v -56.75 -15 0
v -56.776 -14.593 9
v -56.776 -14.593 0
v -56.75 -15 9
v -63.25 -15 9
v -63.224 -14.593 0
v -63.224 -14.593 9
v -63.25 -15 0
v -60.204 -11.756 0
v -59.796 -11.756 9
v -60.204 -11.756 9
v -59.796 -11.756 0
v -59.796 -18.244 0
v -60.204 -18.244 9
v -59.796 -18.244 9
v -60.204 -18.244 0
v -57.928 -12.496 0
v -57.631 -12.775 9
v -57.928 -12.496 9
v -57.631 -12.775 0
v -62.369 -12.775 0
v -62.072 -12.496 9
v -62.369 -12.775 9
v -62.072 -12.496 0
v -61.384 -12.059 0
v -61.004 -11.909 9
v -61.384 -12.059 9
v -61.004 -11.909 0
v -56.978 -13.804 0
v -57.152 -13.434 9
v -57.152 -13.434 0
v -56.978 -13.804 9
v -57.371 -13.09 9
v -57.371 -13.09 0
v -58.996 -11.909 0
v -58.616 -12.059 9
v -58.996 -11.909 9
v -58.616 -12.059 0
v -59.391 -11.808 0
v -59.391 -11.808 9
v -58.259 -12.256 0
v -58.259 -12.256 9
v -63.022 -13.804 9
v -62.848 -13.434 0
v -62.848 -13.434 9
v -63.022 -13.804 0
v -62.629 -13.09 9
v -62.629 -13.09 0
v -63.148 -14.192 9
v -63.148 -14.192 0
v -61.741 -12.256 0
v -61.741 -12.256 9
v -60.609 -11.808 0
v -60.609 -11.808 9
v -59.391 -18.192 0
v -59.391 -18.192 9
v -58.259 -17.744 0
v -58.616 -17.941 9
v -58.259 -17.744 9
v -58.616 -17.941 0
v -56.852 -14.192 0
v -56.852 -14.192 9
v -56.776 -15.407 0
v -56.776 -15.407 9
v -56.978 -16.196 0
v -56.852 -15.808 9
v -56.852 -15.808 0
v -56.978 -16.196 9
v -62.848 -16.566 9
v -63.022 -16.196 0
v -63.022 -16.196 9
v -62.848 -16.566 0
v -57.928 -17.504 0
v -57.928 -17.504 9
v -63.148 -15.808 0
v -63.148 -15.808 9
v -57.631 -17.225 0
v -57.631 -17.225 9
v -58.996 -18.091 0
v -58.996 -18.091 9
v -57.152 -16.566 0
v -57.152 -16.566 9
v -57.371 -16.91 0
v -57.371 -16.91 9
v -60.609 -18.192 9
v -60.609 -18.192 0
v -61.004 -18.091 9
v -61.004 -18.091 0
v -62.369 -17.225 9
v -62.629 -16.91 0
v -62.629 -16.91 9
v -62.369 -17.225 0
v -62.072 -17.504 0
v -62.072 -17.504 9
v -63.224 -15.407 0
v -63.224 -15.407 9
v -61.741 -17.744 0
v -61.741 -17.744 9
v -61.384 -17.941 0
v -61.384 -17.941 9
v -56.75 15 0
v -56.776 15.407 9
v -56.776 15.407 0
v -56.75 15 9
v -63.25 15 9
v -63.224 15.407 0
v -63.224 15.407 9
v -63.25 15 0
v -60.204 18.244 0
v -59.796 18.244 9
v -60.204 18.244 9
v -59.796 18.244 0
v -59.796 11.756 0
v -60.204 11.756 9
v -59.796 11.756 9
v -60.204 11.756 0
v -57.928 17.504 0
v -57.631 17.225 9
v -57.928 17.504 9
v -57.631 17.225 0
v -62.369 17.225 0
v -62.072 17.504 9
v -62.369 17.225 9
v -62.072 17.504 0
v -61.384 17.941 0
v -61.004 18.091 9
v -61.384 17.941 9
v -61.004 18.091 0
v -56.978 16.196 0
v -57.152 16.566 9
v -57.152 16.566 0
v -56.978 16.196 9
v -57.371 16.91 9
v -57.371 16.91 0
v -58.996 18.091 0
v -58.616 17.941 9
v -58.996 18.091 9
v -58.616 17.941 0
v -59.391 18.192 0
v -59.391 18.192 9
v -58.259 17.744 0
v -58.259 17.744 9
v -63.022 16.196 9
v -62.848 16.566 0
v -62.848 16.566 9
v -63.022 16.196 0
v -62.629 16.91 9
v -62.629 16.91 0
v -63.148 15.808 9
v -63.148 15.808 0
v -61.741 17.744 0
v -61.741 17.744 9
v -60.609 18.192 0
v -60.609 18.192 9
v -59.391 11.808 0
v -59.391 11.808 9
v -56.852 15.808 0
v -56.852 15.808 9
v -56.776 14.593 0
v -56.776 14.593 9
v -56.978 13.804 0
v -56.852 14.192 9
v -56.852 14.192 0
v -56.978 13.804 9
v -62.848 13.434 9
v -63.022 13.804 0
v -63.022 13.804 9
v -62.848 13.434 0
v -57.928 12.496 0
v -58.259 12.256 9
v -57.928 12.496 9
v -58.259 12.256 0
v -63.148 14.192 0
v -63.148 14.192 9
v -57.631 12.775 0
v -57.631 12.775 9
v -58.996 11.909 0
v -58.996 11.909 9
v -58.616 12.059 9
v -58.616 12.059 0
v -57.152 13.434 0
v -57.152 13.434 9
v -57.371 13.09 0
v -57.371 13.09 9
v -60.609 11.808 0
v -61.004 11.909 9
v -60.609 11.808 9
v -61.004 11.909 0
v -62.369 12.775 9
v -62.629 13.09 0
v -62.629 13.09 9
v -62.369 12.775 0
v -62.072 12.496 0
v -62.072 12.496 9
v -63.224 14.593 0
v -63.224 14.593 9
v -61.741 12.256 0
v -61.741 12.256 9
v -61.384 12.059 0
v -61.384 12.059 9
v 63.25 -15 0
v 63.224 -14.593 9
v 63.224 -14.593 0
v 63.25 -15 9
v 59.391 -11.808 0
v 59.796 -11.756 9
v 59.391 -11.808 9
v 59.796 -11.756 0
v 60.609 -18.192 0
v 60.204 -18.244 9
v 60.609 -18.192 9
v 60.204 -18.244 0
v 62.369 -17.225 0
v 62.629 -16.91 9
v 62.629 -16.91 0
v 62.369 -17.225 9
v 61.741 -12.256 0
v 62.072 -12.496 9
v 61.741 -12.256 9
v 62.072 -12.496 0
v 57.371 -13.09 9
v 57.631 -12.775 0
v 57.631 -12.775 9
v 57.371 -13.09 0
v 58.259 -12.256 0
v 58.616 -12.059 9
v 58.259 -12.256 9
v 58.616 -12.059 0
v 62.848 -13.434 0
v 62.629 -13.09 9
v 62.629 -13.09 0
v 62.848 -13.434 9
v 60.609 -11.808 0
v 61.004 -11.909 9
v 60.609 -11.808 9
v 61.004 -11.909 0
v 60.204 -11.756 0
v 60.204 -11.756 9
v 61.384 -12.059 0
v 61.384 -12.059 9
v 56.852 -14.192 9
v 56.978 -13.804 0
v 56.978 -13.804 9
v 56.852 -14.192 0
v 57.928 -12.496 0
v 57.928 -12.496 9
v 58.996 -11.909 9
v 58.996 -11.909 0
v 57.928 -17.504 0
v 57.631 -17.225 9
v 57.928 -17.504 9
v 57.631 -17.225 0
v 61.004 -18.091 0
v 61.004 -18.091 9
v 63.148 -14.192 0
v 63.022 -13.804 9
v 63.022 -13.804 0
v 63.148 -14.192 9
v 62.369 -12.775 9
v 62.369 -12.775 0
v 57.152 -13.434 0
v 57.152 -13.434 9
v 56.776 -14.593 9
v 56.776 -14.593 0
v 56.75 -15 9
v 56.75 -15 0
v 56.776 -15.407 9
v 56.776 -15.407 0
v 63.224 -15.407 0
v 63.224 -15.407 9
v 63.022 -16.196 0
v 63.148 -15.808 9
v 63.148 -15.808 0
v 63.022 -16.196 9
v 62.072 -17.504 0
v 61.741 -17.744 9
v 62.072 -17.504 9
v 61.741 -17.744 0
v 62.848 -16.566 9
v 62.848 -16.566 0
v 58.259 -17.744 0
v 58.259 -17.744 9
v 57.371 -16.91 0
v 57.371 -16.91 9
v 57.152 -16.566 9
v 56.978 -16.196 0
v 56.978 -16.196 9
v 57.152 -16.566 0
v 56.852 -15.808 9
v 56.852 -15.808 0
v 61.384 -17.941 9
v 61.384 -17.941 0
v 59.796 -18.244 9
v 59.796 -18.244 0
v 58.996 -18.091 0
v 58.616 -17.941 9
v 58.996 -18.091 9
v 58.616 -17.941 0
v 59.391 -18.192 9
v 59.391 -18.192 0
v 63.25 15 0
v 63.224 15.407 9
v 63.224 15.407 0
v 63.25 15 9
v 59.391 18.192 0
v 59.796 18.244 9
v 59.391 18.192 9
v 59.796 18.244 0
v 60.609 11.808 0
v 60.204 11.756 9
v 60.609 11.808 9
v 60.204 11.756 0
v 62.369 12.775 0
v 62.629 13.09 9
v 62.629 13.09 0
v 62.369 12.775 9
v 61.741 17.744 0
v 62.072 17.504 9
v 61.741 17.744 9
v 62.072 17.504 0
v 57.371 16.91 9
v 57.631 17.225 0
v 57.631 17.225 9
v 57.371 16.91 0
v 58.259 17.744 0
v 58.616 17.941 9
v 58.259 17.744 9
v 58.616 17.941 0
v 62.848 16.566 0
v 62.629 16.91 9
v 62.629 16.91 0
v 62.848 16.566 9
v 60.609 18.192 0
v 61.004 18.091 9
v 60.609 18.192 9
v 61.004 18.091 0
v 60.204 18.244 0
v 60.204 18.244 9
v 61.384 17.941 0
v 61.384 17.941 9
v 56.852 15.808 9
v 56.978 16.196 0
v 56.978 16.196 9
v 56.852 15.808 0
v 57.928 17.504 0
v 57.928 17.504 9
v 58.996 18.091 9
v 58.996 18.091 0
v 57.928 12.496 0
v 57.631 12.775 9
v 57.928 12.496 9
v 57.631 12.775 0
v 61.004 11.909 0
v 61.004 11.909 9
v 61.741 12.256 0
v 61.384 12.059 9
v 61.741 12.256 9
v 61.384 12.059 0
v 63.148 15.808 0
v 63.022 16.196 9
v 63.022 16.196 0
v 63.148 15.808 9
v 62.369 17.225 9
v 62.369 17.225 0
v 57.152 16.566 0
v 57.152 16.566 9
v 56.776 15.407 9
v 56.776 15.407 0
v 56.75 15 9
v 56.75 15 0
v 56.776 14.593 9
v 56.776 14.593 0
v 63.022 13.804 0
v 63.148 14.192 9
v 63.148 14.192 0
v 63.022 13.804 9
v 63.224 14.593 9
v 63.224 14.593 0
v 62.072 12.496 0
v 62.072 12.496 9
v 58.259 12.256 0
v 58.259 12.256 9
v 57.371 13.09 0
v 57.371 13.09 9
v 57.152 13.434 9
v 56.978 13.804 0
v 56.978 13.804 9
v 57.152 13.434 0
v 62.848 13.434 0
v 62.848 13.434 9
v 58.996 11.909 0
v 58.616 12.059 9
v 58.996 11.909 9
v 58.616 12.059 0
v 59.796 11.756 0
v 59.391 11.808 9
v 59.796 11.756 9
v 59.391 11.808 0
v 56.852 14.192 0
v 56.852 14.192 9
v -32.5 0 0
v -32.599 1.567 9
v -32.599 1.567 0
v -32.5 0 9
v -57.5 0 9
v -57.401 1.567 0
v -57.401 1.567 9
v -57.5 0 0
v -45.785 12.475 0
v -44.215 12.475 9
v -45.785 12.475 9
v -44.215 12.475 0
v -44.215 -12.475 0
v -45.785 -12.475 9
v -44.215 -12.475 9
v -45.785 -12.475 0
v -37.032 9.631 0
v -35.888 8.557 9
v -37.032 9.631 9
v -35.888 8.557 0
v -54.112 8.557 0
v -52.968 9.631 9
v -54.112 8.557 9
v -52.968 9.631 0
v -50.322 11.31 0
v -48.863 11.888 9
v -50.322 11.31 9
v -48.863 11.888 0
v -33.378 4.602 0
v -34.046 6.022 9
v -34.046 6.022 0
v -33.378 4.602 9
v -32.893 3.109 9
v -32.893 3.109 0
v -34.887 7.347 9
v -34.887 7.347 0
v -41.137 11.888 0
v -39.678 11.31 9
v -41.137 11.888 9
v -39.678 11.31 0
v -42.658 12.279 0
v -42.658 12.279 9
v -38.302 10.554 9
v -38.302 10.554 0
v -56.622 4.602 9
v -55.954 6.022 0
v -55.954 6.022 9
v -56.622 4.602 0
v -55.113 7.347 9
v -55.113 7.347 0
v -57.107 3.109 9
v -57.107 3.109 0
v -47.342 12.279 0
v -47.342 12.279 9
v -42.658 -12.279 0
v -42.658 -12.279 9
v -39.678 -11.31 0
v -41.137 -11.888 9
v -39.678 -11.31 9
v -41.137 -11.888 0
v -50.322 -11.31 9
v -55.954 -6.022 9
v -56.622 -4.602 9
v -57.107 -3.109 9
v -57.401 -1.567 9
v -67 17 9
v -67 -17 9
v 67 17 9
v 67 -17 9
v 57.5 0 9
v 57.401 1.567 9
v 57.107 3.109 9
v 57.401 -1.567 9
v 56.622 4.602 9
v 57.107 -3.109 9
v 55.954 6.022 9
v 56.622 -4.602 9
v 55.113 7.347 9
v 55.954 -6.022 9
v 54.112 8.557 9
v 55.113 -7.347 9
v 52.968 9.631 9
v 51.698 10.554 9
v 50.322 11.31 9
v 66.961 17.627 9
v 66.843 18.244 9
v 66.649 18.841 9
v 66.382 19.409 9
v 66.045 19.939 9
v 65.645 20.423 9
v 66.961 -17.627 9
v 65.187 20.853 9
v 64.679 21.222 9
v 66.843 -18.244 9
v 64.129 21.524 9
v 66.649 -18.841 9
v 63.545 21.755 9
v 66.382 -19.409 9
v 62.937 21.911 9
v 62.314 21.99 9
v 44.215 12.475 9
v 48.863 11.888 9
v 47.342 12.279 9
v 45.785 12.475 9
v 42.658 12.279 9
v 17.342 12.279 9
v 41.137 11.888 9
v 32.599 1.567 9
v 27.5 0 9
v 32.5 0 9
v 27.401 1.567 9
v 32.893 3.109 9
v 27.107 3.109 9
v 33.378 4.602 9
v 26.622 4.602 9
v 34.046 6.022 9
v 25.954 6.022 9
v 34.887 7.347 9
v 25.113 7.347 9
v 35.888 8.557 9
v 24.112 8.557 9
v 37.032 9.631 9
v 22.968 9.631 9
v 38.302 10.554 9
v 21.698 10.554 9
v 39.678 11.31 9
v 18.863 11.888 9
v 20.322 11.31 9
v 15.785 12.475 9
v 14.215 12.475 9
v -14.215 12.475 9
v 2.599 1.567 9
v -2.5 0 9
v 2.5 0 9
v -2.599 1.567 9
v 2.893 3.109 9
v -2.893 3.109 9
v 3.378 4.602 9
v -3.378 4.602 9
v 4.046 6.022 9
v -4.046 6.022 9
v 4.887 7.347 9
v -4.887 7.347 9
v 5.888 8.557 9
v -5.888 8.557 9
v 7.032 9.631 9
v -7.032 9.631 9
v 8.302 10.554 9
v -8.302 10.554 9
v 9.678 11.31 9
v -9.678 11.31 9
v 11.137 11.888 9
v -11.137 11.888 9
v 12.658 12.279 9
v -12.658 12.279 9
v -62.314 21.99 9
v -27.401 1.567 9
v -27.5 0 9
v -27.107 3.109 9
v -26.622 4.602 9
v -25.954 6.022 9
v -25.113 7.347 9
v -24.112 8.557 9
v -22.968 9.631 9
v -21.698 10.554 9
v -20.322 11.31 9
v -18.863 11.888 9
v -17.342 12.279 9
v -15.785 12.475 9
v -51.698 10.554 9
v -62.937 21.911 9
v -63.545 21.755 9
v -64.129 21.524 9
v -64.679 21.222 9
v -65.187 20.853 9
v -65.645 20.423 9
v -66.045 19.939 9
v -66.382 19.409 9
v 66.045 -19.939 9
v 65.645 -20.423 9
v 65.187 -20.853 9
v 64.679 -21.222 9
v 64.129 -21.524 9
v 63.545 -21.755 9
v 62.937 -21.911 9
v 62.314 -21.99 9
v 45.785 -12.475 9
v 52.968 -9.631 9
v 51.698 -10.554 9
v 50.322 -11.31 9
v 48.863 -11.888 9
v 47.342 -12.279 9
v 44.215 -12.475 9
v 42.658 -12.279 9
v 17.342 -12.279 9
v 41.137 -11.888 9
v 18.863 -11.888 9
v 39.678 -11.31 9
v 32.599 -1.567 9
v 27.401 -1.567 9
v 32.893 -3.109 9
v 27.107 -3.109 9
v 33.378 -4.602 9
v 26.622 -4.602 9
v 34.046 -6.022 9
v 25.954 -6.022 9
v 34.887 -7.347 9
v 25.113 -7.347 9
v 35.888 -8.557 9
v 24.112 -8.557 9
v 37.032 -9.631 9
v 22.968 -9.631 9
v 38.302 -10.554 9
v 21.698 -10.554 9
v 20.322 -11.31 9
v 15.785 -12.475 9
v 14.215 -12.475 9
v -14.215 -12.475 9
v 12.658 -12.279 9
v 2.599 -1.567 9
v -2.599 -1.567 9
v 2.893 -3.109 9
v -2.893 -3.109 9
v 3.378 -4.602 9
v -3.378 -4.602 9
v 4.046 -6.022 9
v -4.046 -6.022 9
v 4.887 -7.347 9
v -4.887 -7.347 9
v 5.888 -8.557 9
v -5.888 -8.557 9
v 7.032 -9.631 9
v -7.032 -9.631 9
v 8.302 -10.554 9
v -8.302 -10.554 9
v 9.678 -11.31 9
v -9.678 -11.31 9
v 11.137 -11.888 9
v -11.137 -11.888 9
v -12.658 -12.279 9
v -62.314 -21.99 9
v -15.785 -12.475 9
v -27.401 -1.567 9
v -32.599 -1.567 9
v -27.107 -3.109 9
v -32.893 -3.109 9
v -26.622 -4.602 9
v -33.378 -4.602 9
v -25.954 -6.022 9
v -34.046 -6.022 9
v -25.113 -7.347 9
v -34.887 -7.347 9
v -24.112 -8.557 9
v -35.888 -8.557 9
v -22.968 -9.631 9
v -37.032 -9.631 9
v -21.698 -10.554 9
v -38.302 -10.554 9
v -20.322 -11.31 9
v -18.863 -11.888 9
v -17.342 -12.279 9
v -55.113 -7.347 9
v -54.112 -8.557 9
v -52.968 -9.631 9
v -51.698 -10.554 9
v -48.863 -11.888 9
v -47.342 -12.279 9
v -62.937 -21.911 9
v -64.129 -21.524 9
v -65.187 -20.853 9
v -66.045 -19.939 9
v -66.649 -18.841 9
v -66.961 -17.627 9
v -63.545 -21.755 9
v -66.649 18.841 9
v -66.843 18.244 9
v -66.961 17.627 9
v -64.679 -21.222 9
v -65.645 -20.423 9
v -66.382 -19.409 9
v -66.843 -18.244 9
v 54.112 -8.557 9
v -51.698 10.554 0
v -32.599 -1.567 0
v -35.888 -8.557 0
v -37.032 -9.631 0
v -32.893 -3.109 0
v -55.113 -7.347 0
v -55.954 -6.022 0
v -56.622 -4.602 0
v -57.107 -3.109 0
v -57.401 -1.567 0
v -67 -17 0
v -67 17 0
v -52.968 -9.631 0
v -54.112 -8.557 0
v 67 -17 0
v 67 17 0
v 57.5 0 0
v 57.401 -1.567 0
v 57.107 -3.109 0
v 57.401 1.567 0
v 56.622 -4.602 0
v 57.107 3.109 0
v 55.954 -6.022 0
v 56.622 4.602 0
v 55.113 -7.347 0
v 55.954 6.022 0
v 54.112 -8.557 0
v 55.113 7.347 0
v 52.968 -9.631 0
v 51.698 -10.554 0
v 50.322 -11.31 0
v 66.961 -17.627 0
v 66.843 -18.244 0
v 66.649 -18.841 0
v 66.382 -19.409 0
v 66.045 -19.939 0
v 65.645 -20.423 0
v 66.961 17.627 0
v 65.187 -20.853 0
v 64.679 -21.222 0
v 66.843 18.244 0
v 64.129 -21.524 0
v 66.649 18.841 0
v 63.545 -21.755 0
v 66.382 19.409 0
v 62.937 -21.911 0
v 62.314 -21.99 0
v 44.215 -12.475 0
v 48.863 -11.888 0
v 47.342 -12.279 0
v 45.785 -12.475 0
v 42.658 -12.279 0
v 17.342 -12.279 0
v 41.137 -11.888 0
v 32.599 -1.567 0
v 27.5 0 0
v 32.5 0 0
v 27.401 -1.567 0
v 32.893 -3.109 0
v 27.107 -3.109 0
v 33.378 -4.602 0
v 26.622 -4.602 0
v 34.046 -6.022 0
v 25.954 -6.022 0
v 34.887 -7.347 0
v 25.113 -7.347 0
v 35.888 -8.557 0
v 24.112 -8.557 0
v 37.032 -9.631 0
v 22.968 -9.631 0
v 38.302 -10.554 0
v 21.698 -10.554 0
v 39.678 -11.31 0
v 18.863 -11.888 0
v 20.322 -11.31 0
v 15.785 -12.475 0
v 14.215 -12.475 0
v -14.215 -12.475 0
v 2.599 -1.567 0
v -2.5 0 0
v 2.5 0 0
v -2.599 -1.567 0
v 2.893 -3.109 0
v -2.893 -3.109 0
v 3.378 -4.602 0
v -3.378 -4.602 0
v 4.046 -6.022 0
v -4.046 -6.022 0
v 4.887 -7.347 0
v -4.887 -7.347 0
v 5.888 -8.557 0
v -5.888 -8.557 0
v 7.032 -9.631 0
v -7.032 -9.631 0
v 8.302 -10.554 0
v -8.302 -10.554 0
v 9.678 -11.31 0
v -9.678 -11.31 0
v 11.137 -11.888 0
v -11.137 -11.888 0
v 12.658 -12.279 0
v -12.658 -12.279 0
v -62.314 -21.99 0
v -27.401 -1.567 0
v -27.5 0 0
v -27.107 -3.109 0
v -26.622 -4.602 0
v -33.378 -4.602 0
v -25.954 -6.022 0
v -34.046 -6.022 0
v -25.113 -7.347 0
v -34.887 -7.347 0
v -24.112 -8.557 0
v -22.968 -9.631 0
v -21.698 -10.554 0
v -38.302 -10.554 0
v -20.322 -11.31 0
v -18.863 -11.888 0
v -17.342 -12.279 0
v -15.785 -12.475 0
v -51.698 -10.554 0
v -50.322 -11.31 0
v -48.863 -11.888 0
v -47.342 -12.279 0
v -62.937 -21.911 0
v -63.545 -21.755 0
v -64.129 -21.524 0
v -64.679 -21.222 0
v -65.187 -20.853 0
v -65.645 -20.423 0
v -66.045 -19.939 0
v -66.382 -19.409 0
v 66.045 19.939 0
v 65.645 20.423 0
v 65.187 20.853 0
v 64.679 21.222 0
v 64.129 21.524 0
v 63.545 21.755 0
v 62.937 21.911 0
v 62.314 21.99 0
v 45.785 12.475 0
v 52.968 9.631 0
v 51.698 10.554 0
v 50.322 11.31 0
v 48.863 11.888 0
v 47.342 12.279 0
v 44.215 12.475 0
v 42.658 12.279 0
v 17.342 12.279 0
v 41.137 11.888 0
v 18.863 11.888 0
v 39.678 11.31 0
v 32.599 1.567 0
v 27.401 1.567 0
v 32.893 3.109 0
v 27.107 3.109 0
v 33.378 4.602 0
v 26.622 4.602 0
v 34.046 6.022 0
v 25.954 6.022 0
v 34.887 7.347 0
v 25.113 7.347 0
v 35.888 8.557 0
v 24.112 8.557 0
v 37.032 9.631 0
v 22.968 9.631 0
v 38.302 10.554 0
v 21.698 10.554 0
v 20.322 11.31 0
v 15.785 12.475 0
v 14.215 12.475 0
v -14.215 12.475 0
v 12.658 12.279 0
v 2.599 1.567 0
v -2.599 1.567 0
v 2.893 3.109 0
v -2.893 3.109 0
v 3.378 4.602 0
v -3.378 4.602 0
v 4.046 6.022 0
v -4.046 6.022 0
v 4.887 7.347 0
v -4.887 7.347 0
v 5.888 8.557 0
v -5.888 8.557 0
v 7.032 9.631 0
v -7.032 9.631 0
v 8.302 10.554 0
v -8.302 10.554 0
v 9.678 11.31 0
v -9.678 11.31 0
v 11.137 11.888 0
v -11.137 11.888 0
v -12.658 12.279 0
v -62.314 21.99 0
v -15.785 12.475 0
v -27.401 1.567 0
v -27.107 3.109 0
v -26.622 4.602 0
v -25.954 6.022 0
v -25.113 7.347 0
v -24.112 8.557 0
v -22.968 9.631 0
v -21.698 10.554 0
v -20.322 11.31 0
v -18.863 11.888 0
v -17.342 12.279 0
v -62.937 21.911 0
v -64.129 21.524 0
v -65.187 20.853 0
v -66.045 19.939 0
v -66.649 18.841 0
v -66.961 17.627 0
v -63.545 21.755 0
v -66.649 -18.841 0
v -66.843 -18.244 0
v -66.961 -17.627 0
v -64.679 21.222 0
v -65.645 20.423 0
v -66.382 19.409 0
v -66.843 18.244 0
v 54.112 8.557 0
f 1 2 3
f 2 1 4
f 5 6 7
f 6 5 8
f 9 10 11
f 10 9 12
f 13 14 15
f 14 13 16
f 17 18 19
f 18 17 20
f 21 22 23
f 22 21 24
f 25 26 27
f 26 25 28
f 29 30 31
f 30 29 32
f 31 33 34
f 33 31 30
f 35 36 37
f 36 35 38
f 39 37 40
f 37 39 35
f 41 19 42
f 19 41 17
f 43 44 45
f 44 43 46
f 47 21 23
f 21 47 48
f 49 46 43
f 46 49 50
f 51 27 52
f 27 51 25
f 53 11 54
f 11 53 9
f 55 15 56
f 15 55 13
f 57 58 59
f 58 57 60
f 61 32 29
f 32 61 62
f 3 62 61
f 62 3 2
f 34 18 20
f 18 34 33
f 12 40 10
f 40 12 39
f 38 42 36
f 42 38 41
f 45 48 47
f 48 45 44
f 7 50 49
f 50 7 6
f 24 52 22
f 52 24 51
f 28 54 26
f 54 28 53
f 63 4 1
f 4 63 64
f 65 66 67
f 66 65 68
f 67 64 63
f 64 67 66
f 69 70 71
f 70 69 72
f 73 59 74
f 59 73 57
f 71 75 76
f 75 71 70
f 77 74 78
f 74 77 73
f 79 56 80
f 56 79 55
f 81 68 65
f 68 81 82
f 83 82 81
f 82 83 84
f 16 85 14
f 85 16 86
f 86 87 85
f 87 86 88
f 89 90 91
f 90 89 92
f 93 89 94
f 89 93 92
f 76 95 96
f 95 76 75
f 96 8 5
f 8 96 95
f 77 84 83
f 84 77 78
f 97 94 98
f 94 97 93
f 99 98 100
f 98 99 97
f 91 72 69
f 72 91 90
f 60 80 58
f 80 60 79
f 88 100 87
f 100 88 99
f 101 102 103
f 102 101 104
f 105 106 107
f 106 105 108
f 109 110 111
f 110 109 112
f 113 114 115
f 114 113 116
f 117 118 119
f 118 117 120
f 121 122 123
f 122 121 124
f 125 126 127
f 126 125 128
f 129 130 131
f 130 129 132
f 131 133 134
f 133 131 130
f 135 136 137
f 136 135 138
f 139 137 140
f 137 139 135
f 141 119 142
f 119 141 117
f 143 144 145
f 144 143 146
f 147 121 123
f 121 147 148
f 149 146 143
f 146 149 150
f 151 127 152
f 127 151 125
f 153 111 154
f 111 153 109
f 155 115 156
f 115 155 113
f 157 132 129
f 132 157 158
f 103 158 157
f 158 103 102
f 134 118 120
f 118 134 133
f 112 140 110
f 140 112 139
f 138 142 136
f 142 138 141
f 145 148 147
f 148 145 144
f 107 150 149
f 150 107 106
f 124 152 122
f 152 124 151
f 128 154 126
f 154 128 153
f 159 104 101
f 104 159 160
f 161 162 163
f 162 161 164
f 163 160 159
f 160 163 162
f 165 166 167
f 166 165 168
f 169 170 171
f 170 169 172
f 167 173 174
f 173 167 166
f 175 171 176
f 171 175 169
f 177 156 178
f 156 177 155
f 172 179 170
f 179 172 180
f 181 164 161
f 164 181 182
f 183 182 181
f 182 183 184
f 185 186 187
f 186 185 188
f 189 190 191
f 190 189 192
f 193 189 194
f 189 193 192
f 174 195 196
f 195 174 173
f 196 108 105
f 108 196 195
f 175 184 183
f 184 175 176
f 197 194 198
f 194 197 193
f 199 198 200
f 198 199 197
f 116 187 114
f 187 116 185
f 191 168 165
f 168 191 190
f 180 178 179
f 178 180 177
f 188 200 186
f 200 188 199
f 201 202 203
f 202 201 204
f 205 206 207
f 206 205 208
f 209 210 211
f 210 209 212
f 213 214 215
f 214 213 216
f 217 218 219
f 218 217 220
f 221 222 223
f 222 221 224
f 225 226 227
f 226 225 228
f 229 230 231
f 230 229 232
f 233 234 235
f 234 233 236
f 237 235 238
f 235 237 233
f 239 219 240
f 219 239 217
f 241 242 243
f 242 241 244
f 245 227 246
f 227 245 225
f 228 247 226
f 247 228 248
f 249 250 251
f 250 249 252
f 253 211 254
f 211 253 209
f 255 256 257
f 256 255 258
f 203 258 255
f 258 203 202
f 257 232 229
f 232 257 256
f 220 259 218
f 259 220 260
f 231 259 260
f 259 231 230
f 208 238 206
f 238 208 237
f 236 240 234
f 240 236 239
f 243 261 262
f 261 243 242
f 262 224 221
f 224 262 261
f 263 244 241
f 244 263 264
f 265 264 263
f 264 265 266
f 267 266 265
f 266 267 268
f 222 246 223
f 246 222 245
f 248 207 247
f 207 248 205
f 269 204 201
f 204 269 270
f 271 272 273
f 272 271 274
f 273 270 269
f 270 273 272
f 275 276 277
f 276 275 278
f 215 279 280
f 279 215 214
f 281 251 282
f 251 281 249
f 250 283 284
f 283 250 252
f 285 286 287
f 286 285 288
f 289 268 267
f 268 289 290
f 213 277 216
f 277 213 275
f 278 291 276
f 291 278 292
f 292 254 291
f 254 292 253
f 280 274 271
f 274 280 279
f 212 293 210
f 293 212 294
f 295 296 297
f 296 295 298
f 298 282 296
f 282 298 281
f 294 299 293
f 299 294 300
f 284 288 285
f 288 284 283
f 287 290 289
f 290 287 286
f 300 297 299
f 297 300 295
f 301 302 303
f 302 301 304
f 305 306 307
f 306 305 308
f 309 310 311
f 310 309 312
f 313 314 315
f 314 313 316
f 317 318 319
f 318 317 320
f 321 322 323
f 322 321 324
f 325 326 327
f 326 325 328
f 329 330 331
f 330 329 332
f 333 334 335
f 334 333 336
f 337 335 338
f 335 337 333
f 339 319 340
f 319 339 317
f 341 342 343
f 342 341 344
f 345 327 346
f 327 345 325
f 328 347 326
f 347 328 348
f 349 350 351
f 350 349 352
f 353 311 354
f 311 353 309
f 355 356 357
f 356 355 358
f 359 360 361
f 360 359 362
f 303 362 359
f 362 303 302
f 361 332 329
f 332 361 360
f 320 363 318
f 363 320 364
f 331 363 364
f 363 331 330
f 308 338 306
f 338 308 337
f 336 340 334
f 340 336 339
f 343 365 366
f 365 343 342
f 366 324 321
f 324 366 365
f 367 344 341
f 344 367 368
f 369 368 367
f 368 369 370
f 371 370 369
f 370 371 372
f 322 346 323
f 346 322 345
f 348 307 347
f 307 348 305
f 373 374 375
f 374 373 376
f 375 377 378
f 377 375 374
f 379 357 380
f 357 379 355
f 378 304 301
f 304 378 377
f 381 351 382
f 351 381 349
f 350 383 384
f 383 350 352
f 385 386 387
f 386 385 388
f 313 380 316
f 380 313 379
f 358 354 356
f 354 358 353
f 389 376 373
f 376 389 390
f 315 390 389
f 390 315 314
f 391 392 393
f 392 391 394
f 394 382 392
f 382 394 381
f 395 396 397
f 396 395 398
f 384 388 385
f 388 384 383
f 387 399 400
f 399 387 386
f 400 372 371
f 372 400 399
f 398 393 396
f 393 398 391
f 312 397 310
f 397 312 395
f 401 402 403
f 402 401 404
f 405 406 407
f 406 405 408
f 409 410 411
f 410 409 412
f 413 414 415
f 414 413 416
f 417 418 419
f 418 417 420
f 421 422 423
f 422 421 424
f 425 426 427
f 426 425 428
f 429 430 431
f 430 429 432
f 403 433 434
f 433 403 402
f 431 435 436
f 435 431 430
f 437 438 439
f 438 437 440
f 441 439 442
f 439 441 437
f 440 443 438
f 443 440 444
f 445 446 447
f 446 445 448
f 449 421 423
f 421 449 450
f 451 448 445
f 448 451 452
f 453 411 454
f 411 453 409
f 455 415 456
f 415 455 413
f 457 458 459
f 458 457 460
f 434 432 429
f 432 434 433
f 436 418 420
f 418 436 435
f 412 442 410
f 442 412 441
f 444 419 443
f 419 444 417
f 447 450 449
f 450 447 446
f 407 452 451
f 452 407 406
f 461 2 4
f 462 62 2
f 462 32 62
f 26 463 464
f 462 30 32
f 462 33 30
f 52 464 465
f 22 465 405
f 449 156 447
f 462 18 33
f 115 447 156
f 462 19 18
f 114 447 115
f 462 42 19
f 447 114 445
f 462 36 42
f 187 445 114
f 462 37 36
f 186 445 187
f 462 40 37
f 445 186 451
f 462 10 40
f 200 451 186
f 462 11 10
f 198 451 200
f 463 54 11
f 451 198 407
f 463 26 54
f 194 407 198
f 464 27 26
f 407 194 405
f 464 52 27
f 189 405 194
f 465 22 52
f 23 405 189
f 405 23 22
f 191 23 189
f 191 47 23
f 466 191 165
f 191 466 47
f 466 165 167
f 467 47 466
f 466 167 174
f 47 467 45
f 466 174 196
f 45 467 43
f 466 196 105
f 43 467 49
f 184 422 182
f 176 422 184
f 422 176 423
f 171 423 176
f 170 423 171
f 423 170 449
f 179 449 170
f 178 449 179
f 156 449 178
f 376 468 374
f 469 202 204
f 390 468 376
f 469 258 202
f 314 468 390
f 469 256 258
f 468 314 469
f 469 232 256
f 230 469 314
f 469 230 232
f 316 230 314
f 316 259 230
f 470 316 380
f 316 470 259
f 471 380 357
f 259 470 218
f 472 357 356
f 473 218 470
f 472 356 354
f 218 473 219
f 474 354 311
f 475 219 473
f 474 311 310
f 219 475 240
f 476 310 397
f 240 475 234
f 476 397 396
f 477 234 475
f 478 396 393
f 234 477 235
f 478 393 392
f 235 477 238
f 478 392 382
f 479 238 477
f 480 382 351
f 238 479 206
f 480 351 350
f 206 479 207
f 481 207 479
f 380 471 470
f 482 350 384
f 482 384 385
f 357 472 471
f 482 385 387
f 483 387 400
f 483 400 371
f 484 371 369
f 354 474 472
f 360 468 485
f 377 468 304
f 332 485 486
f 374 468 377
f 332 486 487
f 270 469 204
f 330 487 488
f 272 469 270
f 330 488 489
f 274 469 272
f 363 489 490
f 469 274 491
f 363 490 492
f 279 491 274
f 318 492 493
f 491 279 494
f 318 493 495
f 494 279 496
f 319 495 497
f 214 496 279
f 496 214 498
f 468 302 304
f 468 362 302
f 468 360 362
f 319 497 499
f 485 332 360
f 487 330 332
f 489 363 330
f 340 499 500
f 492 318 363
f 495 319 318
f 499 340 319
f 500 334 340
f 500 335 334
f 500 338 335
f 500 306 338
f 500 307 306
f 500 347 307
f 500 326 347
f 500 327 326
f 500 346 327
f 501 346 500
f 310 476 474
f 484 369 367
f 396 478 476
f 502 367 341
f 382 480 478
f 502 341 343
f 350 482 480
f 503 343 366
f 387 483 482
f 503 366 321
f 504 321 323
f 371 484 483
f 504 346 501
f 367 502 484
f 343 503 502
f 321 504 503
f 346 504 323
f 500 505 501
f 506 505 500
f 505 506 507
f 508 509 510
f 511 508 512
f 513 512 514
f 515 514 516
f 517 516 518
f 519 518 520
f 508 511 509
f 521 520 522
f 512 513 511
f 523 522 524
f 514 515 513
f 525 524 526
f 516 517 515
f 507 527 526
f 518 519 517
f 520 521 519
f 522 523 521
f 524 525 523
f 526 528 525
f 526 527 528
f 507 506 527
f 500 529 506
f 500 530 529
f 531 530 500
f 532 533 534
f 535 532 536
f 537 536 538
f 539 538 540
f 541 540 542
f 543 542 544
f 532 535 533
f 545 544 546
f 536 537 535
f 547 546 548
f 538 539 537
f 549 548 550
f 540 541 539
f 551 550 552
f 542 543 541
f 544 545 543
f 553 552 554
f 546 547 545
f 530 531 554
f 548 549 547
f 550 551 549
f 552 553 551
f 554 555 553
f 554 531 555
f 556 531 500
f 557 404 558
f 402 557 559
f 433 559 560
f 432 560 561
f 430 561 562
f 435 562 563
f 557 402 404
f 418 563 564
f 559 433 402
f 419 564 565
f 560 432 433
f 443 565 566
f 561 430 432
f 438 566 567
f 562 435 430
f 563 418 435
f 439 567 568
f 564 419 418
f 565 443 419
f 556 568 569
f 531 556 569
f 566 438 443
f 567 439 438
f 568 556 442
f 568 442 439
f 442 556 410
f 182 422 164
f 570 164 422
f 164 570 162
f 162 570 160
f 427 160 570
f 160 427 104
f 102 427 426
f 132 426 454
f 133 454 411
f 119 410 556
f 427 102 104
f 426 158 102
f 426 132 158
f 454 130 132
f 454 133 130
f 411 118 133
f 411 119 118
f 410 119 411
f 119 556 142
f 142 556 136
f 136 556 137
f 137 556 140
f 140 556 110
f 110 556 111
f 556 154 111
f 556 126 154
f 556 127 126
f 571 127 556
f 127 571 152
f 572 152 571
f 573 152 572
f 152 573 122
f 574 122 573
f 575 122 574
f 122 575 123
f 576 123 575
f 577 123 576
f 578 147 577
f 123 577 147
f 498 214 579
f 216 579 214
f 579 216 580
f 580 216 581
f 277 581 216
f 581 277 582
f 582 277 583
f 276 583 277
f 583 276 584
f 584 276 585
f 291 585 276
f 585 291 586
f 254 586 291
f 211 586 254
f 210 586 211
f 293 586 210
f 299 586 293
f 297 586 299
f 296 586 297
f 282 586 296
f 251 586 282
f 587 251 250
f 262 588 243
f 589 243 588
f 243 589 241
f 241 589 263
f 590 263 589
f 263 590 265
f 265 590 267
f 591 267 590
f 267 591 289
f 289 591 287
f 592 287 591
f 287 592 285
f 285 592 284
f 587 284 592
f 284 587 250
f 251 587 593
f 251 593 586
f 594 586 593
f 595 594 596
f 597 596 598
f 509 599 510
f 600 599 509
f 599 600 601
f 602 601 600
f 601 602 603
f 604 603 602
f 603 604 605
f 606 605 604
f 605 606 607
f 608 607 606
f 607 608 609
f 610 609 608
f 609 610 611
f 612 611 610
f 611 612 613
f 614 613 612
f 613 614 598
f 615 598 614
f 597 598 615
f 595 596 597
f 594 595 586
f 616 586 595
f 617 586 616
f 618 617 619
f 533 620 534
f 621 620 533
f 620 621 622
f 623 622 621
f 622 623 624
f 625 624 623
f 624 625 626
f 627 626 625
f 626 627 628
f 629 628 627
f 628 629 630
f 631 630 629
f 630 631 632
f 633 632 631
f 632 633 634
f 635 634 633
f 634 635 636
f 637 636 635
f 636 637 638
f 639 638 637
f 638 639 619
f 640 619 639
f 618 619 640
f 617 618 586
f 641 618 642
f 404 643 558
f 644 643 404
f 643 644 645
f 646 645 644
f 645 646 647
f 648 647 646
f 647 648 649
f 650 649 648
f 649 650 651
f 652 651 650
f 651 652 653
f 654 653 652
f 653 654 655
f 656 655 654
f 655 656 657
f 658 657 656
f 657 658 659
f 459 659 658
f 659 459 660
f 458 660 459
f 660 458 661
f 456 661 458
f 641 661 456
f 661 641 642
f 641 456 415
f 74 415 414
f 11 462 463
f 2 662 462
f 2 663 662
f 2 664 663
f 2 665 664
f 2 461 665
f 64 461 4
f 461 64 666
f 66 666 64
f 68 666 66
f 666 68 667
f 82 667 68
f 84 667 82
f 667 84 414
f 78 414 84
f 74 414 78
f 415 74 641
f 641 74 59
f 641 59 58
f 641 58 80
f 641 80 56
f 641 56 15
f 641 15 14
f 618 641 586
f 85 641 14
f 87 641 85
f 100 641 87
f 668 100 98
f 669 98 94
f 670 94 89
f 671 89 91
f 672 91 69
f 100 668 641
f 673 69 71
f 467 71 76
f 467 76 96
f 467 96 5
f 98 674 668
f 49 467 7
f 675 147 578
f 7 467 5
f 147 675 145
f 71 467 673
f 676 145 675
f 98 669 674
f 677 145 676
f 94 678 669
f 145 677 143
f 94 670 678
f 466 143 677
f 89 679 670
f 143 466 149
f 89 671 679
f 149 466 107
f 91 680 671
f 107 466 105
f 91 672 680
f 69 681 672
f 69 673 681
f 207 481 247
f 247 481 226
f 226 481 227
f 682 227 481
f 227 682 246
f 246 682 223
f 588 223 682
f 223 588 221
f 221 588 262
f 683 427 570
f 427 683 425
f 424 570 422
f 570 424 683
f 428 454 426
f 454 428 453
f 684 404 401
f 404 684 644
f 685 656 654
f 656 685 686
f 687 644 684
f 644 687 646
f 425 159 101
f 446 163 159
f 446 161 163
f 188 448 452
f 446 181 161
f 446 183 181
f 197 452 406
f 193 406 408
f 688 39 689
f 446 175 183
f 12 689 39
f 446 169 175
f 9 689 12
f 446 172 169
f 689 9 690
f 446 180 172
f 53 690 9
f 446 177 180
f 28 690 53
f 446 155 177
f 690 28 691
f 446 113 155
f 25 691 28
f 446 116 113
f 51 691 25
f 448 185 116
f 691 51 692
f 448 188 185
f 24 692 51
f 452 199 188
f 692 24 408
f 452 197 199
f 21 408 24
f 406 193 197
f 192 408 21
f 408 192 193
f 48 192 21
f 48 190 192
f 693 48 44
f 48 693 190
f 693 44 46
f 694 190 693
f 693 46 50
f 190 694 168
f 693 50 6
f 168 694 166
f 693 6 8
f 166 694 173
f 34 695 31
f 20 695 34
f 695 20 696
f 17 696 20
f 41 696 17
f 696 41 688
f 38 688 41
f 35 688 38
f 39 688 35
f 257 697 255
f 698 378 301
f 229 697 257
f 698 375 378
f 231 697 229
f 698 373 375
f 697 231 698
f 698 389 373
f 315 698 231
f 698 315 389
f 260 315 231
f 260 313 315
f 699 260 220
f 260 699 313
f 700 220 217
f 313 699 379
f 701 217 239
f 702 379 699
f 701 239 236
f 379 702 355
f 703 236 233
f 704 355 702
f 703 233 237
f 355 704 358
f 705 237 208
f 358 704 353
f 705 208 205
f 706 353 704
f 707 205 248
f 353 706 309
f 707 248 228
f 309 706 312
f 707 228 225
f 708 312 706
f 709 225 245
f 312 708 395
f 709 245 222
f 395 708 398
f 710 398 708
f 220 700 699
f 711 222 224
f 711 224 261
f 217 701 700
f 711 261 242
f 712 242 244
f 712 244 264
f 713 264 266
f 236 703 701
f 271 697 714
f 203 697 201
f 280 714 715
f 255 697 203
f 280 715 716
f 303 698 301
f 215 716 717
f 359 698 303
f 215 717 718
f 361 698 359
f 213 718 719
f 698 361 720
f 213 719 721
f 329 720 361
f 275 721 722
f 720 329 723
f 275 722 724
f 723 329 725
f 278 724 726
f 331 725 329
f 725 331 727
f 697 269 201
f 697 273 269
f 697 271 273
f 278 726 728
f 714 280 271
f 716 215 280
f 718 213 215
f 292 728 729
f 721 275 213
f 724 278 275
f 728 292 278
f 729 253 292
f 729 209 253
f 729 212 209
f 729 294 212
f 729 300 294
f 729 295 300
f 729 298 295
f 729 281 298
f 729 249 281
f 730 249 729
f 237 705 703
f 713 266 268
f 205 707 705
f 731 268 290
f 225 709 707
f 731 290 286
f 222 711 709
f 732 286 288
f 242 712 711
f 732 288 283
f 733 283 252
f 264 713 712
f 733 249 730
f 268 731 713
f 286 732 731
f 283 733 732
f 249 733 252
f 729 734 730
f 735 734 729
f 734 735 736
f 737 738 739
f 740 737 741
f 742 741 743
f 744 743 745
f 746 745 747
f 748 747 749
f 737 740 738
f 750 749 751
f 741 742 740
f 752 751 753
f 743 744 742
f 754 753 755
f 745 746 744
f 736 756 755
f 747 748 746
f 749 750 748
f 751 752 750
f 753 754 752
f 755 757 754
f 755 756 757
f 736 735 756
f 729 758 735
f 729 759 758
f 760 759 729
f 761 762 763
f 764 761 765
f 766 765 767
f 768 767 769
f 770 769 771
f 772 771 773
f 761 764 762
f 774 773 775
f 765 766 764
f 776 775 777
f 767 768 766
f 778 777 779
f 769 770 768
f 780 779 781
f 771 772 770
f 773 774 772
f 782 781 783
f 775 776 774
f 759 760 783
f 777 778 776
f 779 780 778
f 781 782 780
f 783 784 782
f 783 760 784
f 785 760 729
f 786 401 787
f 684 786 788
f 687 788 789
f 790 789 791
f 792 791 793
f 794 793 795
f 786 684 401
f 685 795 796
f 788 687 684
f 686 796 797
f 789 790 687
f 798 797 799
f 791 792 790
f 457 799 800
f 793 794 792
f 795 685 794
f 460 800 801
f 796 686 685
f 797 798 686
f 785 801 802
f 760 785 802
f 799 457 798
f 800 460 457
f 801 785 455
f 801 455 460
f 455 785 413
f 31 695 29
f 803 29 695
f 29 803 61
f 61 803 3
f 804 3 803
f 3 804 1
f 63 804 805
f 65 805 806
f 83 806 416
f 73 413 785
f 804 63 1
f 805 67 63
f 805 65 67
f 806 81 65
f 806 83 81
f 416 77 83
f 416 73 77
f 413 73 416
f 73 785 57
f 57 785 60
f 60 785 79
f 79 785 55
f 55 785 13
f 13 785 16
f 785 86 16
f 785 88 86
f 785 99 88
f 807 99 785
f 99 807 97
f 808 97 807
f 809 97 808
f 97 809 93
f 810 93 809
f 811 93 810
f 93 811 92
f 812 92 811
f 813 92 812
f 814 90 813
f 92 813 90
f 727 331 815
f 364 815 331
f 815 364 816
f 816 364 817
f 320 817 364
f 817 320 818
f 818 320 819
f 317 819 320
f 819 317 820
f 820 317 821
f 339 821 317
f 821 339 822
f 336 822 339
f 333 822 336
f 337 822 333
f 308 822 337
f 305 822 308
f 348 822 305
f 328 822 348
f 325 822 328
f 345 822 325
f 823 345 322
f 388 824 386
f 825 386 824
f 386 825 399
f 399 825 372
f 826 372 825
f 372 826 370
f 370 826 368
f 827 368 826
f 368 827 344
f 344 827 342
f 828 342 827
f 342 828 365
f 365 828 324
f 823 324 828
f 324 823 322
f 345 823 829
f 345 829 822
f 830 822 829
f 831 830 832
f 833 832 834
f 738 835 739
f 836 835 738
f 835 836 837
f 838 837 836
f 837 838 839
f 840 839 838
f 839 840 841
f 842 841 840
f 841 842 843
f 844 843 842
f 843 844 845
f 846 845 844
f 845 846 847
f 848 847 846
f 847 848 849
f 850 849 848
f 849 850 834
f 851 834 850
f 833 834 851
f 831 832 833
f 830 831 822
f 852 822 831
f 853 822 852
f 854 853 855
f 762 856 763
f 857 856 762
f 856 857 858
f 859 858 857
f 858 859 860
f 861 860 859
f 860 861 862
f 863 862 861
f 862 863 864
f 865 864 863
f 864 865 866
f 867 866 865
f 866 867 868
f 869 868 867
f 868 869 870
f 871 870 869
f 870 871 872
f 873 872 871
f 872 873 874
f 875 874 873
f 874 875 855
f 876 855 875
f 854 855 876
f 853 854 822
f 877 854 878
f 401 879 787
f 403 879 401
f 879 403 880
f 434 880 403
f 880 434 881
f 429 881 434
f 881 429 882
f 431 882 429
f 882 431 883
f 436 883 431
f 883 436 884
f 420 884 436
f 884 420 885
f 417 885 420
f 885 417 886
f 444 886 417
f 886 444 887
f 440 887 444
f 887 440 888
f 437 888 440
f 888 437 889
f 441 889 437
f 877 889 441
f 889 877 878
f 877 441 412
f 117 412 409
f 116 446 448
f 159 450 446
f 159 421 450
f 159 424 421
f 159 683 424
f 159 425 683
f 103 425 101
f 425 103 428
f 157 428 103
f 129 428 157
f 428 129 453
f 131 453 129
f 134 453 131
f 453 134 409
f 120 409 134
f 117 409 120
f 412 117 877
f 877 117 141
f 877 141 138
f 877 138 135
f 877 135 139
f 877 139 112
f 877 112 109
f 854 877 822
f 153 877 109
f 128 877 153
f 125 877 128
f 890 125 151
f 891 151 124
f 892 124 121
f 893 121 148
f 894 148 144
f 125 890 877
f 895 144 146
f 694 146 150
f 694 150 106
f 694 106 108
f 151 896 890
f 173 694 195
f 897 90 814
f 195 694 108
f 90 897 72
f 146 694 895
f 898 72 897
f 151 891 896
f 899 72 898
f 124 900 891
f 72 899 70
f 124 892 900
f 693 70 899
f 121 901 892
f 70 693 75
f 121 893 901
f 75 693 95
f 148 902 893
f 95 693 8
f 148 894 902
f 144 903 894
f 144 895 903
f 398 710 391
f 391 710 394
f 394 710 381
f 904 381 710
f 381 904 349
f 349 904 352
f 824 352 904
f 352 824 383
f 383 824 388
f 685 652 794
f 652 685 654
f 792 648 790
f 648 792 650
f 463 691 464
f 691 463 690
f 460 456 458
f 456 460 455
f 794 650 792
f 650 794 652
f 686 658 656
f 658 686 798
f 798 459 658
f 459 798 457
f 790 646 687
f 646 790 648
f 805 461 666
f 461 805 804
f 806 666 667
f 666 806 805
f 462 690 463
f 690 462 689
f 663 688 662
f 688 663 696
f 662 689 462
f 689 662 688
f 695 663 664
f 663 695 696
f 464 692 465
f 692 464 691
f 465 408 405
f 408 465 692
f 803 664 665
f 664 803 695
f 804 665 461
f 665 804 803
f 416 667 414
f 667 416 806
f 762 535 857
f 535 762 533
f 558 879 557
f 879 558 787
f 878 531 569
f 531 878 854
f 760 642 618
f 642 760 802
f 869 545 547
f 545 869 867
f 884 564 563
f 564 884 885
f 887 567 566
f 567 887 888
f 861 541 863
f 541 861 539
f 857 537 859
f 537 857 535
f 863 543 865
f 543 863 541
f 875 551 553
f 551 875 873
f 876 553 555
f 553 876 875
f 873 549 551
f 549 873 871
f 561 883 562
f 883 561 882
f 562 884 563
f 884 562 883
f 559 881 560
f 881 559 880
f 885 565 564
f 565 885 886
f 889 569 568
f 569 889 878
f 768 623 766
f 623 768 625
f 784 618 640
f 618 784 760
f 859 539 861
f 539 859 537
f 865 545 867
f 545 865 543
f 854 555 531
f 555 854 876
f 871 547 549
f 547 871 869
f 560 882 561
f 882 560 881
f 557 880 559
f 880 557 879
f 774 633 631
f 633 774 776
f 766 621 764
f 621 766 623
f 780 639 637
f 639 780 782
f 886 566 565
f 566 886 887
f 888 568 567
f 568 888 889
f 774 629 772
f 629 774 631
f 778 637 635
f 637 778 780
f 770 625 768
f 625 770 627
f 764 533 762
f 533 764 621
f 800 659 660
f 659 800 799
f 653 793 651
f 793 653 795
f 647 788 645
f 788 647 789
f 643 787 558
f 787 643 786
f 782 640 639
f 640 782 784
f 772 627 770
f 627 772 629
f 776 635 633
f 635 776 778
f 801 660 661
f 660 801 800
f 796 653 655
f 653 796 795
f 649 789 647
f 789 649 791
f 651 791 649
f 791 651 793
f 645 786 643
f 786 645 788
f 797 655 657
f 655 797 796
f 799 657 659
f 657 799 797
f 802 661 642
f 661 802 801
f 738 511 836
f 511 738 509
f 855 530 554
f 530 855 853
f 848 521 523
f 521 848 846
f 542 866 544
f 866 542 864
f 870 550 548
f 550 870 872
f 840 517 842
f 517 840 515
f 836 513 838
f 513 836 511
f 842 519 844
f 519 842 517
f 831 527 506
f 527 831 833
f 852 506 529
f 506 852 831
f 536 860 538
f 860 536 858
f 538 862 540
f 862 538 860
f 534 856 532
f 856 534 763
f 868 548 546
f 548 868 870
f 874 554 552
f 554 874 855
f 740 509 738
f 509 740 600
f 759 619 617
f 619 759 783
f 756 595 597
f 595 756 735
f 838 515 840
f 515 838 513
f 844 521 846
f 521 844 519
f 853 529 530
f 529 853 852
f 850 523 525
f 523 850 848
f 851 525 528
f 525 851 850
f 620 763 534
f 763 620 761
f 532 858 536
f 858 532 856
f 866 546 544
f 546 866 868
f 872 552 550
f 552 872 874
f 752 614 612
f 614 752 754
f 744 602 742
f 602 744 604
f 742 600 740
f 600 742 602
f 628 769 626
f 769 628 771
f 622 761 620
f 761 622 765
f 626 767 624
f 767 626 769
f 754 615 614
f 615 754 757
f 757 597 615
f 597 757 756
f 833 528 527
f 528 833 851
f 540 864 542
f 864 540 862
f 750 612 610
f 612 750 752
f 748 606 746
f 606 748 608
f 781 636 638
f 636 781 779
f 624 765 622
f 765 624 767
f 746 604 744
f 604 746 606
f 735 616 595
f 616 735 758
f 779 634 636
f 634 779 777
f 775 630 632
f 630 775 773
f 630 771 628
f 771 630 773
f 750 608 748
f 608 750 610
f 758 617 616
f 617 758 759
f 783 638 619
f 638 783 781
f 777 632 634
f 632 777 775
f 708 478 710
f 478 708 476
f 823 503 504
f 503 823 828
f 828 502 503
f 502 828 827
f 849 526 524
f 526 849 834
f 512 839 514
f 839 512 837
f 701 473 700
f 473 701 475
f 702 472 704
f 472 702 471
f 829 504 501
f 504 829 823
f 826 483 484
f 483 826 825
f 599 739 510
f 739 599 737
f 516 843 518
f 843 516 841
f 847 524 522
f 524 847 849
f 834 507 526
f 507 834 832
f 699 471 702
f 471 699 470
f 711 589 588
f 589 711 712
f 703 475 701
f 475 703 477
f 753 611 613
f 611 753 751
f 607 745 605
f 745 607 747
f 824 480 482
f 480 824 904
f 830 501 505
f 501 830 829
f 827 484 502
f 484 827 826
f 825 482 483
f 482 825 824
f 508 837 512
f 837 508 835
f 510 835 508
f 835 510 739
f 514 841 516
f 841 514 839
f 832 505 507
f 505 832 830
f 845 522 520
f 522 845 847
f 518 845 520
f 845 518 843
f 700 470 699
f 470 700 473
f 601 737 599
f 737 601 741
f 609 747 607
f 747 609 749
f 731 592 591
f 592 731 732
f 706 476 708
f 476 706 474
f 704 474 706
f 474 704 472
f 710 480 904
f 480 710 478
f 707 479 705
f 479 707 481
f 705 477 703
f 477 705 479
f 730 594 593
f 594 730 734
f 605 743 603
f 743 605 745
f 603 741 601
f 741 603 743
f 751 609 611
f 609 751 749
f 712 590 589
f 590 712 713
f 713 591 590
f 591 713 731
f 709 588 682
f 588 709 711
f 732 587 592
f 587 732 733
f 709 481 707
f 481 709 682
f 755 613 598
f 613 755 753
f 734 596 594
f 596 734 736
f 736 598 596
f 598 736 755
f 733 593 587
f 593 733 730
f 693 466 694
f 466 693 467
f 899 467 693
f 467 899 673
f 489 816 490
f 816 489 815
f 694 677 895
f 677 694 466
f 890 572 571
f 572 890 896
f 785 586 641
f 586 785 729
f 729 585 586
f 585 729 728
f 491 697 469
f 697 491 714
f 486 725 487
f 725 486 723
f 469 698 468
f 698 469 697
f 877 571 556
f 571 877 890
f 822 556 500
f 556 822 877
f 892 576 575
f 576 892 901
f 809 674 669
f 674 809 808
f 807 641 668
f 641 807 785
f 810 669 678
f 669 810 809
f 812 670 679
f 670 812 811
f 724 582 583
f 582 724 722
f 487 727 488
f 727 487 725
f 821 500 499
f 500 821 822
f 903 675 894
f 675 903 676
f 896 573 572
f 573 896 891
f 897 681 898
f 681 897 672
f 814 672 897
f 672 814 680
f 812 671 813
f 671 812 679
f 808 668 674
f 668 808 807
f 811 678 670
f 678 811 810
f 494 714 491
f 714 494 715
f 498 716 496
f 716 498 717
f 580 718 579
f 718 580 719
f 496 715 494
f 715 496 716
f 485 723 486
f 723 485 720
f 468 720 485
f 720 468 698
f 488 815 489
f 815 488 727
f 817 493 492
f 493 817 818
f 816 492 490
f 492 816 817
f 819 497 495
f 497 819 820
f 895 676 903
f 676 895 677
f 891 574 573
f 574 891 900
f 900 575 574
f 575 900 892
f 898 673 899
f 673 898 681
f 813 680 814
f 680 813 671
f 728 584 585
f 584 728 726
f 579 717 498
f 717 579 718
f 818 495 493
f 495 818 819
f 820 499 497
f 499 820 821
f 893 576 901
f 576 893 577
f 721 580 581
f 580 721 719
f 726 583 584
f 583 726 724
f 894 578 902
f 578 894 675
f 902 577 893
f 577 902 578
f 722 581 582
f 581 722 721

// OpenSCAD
$fn = 50;


difference() {
	union() {
		hull() {
			translate(v = [-62.0000000000, 17.0000000000, 0]) {
				cylinder(h = 9, r = 5);
			}
			translate(v = [62.0000000000, 17.0000000000, 0]) {
				cylinder(h = 9, r = 5);
			}
			translate(v = [-62.0000000000, -17.0000000000, 0]) {
				cylinder(h = 9, r = 5);
			}
			translate(v = [62.0000000000, -17.0000000000, 0]) {
				cylinder(h = 9, r = 5);
			}
		}
	}
	union() {
		#translate(v = [-60.0000000000, -15.0000000000, -100.0000000000]) {
			cylinder(h = 200, r = 3.2500000000);
		}
		#translate(v = [-60.0000000000, 15.0000000000, -100.0000000000]) {
			cylinder(h = 200, r = 3.2500000000);
		}
		#translate(v = [60.0000000000, -15.0000000000, -100.0000000000]) {
			cylinder(h = 200, r = 3.2500000000);
		}
		#translate(v = [60.0000000000, 15.0000000000, -100.0000000000]) {
			cylinder(h = 200, r = 3.2500000000);
		}
		#translate(v = [-45.0000000000, 0, 0]) {
			cylinder(h = 9, r = 12.5000000000);
		}
		#translate(v = [-15.0000000000, 0, 0]) {
			cylinder(h = 9, r = 12.5000000000);
		}
		#translate(v = [15.0000000000, 0, 0]) {
			cylinder(h = 9, r = 12.5000000000);
		}
		#translate(v = [45.0000000000, 0, 0]) {
			cylinder(h = 9, r = 12.5000000000);
		}
	}
}
